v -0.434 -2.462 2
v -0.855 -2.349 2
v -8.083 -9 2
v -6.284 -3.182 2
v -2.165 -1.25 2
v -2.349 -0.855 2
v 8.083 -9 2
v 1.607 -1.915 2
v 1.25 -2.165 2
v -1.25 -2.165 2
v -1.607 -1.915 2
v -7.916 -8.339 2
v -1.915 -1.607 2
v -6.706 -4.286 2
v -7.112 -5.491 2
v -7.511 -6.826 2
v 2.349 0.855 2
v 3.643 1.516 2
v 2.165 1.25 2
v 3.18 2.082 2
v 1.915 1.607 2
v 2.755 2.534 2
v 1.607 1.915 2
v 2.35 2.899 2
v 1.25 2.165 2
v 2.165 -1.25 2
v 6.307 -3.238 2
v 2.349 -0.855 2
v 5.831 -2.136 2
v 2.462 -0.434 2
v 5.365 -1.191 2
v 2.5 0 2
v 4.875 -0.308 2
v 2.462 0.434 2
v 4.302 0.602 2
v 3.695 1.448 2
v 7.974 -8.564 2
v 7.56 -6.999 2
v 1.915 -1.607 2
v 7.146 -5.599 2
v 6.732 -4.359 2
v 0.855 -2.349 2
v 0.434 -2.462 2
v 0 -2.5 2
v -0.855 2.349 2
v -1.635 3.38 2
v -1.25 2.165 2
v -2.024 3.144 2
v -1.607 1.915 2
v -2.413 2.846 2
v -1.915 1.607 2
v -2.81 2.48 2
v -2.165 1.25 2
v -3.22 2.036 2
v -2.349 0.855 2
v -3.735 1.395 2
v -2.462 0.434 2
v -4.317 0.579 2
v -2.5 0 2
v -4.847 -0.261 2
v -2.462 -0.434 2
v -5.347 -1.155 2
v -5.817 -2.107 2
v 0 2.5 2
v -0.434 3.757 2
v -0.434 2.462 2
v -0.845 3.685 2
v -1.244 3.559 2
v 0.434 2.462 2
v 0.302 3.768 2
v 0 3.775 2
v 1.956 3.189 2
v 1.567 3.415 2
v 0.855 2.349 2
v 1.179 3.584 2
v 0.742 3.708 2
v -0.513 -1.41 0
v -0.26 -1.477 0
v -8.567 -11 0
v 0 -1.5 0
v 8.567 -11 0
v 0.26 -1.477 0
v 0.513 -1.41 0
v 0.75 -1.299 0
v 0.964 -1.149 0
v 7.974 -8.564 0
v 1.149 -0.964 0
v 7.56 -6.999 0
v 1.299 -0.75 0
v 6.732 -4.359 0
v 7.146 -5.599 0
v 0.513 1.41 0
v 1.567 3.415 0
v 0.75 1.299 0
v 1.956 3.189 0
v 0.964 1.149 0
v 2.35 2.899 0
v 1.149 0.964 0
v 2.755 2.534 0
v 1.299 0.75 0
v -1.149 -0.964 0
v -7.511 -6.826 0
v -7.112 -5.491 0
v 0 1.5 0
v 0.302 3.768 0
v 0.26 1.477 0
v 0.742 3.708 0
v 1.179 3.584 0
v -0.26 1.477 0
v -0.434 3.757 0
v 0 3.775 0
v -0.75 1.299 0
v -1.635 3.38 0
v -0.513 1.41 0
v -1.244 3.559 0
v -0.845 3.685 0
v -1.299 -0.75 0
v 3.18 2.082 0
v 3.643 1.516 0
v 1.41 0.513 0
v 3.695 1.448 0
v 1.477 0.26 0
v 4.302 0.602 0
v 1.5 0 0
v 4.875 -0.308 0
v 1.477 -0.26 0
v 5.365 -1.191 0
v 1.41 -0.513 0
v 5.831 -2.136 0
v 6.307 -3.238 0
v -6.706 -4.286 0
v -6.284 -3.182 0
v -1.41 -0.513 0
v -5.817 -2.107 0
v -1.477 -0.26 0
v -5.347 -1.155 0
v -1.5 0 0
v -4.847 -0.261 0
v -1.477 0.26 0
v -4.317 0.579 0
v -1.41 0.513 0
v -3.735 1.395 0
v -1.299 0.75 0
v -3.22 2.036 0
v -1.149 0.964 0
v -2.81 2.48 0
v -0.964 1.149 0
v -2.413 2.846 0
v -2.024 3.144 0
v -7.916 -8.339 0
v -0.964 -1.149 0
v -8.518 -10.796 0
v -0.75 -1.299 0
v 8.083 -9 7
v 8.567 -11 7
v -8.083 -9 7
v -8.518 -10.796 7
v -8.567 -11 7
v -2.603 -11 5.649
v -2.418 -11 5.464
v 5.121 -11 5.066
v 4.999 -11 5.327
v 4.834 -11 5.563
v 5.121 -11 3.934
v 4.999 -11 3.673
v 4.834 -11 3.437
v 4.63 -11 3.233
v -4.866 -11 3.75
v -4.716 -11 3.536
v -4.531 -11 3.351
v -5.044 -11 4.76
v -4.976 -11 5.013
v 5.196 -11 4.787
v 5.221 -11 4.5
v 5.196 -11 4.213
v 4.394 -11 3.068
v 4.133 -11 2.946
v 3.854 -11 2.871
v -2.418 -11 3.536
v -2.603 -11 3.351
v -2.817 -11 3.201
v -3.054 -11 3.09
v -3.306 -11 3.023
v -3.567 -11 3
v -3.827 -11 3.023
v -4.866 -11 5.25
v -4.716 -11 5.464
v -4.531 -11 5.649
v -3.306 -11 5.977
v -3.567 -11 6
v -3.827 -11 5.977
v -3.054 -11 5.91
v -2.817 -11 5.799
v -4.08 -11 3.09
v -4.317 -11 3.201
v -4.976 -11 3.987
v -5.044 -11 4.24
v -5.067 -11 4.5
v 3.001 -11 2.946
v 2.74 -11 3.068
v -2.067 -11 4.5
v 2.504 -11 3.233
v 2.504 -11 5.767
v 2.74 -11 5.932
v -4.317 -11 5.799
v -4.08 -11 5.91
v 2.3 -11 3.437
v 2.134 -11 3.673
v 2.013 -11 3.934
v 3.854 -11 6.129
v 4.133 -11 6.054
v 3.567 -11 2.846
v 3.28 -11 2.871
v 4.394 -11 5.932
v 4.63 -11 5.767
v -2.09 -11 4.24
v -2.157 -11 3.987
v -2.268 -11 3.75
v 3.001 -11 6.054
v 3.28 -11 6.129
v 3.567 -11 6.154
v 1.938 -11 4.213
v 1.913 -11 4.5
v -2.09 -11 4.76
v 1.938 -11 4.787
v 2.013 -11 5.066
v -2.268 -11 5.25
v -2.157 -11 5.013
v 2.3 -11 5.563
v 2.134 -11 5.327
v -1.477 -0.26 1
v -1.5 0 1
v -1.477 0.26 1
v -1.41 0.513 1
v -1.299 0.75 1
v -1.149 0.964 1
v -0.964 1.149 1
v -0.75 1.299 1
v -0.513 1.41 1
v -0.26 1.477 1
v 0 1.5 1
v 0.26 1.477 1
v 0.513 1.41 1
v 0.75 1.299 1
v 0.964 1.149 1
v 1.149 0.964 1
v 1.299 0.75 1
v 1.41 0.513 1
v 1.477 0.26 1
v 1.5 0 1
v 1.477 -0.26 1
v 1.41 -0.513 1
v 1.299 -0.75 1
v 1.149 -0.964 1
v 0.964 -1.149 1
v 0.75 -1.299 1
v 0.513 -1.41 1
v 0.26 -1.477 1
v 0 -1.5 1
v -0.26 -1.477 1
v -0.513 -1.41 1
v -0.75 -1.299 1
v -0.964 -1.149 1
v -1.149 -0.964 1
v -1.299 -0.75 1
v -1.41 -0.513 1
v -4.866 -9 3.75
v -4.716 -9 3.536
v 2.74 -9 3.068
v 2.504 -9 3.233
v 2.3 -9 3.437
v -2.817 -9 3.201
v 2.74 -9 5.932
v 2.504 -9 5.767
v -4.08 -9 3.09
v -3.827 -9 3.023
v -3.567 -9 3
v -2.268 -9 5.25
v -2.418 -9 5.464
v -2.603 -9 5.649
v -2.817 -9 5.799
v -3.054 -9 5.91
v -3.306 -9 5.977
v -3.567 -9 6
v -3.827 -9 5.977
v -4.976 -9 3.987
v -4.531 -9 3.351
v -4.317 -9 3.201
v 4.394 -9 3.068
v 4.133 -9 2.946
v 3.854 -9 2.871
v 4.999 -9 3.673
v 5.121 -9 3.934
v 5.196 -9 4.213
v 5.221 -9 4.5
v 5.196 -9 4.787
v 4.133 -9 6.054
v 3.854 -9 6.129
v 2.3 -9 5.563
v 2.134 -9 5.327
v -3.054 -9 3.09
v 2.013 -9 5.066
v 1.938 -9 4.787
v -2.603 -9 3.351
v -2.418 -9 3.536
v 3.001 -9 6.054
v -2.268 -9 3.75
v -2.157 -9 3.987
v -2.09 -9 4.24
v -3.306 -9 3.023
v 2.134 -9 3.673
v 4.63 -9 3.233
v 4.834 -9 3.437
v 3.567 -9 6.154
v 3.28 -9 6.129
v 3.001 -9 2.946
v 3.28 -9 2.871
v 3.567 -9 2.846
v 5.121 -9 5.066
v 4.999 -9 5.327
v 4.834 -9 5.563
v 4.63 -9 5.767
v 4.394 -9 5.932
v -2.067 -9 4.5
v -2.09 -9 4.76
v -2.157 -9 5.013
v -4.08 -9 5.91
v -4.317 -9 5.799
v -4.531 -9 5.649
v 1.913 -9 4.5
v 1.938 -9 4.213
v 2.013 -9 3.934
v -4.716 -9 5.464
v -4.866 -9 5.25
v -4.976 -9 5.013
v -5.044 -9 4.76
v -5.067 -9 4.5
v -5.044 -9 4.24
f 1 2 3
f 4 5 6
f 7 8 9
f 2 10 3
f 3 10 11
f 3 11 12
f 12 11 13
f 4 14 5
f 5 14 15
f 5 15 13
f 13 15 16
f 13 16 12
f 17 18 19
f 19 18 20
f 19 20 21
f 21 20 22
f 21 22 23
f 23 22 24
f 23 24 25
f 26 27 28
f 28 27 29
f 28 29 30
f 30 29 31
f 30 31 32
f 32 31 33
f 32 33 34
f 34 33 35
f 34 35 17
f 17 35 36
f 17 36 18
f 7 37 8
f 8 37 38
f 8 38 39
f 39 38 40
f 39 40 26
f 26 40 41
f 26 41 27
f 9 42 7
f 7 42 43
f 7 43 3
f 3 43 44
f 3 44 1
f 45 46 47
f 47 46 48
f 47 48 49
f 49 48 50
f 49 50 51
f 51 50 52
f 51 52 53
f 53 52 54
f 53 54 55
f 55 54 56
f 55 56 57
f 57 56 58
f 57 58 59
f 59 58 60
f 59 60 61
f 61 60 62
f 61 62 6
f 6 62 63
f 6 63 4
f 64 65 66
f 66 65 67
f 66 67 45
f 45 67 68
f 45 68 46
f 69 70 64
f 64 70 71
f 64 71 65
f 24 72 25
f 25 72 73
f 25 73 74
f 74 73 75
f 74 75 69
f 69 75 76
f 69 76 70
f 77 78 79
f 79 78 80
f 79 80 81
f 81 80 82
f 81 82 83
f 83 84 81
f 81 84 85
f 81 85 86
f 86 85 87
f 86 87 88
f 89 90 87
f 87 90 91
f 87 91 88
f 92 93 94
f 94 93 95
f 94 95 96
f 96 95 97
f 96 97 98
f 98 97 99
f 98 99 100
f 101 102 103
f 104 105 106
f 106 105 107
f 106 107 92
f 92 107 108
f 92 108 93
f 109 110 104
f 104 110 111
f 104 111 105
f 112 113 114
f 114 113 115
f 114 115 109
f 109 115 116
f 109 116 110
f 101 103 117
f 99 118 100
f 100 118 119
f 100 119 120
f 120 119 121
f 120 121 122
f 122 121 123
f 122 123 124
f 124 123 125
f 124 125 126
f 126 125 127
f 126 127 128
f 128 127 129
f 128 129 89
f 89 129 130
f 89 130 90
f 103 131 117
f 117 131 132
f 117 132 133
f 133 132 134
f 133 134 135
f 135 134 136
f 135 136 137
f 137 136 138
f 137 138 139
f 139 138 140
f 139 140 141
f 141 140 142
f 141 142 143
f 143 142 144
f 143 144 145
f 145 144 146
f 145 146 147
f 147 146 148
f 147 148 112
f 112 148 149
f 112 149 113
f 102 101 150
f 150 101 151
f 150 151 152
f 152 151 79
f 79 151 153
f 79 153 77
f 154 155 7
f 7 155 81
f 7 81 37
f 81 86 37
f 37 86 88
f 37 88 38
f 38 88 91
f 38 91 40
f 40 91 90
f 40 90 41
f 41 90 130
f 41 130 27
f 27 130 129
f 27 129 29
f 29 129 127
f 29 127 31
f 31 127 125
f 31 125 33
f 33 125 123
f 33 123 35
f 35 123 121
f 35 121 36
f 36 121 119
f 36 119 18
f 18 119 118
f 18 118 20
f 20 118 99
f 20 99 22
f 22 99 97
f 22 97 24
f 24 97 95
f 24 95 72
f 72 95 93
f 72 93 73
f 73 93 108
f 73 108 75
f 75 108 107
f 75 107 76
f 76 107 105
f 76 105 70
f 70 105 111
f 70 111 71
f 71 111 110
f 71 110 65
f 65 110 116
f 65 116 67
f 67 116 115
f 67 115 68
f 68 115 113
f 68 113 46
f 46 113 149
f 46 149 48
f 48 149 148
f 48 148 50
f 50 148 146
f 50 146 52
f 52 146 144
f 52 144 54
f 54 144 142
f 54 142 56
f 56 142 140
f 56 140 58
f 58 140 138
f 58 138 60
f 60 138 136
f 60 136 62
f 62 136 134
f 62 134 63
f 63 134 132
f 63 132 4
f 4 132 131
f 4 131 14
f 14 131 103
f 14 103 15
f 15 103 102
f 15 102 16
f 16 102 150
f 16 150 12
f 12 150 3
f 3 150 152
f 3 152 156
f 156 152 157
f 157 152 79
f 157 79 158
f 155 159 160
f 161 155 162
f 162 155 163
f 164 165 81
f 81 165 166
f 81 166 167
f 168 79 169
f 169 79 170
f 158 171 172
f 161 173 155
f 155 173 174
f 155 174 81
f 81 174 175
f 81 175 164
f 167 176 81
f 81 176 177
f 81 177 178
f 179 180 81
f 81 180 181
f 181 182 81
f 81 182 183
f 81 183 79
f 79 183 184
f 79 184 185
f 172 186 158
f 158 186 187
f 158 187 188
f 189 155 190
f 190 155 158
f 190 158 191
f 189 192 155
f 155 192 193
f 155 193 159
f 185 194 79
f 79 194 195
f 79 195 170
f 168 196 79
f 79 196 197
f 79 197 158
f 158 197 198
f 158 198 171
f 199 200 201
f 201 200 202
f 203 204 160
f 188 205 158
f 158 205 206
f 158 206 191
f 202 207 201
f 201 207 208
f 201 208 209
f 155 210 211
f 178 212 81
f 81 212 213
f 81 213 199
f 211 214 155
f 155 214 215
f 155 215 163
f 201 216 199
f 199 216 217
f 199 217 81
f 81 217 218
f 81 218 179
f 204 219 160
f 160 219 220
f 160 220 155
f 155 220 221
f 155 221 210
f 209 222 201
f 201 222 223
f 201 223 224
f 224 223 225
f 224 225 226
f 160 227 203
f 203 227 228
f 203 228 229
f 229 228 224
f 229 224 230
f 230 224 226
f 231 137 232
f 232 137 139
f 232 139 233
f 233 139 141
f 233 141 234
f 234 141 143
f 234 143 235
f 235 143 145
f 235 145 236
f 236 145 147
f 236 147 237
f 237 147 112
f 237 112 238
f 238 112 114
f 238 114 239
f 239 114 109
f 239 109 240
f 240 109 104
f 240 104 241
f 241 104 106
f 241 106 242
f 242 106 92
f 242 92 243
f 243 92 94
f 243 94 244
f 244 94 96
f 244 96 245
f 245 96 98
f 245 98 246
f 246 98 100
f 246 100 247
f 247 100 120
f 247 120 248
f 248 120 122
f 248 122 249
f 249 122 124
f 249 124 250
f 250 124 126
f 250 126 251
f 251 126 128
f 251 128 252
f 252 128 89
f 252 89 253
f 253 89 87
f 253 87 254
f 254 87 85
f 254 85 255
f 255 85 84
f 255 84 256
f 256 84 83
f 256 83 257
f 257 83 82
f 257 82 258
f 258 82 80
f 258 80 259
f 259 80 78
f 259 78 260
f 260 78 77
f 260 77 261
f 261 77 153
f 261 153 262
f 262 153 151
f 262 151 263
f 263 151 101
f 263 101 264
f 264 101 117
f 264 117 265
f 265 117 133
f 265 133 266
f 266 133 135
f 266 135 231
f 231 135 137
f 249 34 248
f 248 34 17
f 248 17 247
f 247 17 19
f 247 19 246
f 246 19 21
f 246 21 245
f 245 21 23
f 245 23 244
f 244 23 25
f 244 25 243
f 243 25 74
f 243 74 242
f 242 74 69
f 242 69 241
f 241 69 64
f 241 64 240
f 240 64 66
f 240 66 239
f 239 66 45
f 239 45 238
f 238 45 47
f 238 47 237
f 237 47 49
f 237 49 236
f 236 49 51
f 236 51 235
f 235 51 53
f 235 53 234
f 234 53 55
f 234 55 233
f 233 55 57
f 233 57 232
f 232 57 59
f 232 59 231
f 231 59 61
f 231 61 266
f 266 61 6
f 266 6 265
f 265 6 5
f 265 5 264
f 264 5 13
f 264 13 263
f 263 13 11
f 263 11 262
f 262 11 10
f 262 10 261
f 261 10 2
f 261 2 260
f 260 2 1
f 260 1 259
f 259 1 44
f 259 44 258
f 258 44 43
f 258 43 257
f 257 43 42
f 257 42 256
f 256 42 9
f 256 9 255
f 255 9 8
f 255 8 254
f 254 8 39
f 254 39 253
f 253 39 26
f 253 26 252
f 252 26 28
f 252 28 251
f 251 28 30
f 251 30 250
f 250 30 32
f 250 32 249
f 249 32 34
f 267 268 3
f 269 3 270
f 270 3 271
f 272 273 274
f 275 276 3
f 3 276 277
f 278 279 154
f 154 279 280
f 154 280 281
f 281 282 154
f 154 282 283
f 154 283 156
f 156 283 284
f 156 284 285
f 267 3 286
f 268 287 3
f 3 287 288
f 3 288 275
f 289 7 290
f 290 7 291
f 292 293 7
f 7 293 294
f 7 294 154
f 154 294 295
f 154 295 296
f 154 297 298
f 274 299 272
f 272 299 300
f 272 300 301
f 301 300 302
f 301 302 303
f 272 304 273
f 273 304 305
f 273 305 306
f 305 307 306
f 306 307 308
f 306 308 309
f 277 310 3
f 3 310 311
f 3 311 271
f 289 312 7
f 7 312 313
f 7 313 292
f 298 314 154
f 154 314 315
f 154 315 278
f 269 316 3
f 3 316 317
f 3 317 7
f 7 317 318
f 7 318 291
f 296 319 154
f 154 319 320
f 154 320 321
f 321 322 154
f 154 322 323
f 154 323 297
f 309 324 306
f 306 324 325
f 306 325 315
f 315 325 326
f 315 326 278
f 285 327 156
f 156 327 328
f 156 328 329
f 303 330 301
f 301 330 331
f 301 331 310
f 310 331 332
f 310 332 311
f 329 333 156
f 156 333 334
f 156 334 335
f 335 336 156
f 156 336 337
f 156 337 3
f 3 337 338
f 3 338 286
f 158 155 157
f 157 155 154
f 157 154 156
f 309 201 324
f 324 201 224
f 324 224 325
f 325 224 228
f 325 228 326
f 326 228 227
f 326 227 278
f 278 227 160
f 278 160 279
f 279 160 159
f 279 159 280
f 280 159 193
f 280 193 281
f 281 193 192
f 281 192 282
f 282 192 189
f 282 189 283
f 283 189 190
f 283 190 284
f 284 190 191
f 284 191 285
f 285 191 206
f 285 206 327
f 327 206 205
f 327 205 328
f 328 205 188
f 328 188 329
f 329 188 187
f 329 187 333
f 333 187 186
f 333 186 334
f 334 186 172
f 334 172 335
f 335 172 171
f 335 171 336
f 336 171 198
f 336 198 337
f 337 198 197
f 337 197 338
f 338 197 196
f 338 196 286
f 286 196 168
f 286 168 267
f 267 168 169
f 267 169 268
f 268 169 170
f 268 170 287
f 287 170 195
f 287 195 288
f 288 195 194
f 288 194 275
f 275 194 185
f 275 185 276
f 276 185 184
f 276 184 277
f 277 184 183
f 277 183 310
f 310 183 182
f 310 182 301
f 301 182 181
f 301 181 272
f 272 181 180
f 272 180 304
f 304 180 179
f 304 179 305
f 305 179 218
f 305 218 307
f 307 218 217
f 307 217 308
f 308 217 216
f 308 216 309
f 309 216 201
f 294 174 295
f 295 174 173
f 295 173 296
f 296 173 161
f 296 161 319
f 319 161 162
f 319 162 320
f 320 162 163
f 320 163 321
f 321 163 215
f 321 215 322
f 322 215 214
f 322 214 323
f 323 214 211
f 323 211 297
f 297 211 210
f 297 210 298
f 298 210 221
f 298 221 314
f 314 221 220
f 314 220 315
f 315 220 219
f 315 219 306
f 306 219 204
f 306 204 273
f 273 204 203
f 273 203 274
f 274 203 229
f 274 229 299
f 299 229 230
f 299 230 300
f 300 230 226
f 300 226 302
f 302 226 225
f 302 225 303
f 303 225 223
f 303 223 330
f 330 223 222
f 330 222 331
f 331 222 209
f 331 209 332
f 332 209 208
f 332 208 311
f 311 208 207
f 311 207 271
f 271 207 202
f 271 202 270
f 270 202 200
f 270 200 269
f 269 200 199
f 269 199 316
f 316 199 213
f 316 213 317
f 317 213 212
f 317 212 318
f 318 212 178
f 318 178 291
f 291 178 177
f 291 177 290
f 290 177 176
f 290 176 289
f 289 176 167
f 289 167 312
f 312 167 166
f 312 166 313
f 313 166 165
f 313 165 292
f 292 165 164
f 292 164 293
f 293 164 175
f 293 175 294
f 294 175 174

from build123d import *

# Parameters (mm, degrees)
SKETCH1_R           = 1.5
BOSS_EXTRUDE1_DEPTH = 2
CHAMFER1_SIZE       = 1
BOSS_EXTRUDE2_DEPTH = 5
SKETCH3_R           = 1.5
SKETCH3_R_2         = 1.654032004
CUT_EXTRUDE1_DEPTH  = 19.458358008


with BuildPart() as part:
    # Sketch1 → Boss-Extrude1 (new body)
    with BuildSketch(Plane.XY):
        with BuildLine():
            Line((8.566894072, -11), (-8.566894072, -11))
            add(Edge.make_bspline(
                [(0, 3.774563681), (-1.6213965, 3.815439451), (-6.14281173, -0.719191195), (-7.529582221, -6.667664167), (-8.566894072, -11)],
                knots=[0, 0, 0, 0, 0.251062994, 1, 1, 1, 1], degree=3))
            add(Edge.make_bspline(
                [(0, 3.774563681), (1.6213965, 3.815439451), (6.14281173, -0.719191195), (7.529582221, -6.667664167), (8.566894072, -11)],
                knots=[0, 0, 0, 0, 0.251062994, 1, 1, 1, 1], degree=3))
        make_face()
        Circle(SKETCH1_R, mode=Mode.SUBTRACT)
    extrude(amount=BOSS_EXTRUDE1_DEPTH)

    # Chamfer1
    chamfer1_edges = [part.edges().sort_by_distance(p)[0] for p in [
        (-1.5, 0, 2),
    ]]
    chamfer(chamfer1_edges, length=CHAMFER1_SIZE)

    # Sketch2 → Boss-Extrude2 (add)
    with BuildSketch(Plane.XY.offset(2)):
        with BuildLine():
            Line((-8.082865754, -9), (8.082865754, -9))
            add(Edge.make_bspline(
                [(8.566894072, -11), (8.407698636, -10.33511982), (8.248472773, -9.667349813), (8.082865754, -9)],
                knots=[0, 0, 0, 0, 0.114938775, 0.114938775, 0.114938775, 0.114938775], degree=3))
            Line((8.566894072, -11), (-8.566894072, -11))
            add(Edge.make_bspline(
                [(-8.082865754, -9), (-8.248472773, -9.667349813), (-8.407698636, -10.33511982), (-8.566894072, -11)],
                knots=[0.885061225, 0.885061225, 0.885061225, 0.885061225, 1, 1, 1, 1], degree=3))
        make_face()
    extrude(amount=BOSS_EXTRUDE2_DEPTH)

    # Sketch3 → Cut-Extrude1 (cut, through all)
    with BuildSketch(Plane.XZ.offset(11)):
        with Locations((-3.566894072, 4.5)):
            Circle(SKETCH3_R)
        with Locations((3.566894072, 4.5)):
            Circle(SKETCH3_R_2)
    extrude(amount=-CUT_EXTRUDE1_DEPTH, mode=Mode.SUBTRACT)


solid = part.part
